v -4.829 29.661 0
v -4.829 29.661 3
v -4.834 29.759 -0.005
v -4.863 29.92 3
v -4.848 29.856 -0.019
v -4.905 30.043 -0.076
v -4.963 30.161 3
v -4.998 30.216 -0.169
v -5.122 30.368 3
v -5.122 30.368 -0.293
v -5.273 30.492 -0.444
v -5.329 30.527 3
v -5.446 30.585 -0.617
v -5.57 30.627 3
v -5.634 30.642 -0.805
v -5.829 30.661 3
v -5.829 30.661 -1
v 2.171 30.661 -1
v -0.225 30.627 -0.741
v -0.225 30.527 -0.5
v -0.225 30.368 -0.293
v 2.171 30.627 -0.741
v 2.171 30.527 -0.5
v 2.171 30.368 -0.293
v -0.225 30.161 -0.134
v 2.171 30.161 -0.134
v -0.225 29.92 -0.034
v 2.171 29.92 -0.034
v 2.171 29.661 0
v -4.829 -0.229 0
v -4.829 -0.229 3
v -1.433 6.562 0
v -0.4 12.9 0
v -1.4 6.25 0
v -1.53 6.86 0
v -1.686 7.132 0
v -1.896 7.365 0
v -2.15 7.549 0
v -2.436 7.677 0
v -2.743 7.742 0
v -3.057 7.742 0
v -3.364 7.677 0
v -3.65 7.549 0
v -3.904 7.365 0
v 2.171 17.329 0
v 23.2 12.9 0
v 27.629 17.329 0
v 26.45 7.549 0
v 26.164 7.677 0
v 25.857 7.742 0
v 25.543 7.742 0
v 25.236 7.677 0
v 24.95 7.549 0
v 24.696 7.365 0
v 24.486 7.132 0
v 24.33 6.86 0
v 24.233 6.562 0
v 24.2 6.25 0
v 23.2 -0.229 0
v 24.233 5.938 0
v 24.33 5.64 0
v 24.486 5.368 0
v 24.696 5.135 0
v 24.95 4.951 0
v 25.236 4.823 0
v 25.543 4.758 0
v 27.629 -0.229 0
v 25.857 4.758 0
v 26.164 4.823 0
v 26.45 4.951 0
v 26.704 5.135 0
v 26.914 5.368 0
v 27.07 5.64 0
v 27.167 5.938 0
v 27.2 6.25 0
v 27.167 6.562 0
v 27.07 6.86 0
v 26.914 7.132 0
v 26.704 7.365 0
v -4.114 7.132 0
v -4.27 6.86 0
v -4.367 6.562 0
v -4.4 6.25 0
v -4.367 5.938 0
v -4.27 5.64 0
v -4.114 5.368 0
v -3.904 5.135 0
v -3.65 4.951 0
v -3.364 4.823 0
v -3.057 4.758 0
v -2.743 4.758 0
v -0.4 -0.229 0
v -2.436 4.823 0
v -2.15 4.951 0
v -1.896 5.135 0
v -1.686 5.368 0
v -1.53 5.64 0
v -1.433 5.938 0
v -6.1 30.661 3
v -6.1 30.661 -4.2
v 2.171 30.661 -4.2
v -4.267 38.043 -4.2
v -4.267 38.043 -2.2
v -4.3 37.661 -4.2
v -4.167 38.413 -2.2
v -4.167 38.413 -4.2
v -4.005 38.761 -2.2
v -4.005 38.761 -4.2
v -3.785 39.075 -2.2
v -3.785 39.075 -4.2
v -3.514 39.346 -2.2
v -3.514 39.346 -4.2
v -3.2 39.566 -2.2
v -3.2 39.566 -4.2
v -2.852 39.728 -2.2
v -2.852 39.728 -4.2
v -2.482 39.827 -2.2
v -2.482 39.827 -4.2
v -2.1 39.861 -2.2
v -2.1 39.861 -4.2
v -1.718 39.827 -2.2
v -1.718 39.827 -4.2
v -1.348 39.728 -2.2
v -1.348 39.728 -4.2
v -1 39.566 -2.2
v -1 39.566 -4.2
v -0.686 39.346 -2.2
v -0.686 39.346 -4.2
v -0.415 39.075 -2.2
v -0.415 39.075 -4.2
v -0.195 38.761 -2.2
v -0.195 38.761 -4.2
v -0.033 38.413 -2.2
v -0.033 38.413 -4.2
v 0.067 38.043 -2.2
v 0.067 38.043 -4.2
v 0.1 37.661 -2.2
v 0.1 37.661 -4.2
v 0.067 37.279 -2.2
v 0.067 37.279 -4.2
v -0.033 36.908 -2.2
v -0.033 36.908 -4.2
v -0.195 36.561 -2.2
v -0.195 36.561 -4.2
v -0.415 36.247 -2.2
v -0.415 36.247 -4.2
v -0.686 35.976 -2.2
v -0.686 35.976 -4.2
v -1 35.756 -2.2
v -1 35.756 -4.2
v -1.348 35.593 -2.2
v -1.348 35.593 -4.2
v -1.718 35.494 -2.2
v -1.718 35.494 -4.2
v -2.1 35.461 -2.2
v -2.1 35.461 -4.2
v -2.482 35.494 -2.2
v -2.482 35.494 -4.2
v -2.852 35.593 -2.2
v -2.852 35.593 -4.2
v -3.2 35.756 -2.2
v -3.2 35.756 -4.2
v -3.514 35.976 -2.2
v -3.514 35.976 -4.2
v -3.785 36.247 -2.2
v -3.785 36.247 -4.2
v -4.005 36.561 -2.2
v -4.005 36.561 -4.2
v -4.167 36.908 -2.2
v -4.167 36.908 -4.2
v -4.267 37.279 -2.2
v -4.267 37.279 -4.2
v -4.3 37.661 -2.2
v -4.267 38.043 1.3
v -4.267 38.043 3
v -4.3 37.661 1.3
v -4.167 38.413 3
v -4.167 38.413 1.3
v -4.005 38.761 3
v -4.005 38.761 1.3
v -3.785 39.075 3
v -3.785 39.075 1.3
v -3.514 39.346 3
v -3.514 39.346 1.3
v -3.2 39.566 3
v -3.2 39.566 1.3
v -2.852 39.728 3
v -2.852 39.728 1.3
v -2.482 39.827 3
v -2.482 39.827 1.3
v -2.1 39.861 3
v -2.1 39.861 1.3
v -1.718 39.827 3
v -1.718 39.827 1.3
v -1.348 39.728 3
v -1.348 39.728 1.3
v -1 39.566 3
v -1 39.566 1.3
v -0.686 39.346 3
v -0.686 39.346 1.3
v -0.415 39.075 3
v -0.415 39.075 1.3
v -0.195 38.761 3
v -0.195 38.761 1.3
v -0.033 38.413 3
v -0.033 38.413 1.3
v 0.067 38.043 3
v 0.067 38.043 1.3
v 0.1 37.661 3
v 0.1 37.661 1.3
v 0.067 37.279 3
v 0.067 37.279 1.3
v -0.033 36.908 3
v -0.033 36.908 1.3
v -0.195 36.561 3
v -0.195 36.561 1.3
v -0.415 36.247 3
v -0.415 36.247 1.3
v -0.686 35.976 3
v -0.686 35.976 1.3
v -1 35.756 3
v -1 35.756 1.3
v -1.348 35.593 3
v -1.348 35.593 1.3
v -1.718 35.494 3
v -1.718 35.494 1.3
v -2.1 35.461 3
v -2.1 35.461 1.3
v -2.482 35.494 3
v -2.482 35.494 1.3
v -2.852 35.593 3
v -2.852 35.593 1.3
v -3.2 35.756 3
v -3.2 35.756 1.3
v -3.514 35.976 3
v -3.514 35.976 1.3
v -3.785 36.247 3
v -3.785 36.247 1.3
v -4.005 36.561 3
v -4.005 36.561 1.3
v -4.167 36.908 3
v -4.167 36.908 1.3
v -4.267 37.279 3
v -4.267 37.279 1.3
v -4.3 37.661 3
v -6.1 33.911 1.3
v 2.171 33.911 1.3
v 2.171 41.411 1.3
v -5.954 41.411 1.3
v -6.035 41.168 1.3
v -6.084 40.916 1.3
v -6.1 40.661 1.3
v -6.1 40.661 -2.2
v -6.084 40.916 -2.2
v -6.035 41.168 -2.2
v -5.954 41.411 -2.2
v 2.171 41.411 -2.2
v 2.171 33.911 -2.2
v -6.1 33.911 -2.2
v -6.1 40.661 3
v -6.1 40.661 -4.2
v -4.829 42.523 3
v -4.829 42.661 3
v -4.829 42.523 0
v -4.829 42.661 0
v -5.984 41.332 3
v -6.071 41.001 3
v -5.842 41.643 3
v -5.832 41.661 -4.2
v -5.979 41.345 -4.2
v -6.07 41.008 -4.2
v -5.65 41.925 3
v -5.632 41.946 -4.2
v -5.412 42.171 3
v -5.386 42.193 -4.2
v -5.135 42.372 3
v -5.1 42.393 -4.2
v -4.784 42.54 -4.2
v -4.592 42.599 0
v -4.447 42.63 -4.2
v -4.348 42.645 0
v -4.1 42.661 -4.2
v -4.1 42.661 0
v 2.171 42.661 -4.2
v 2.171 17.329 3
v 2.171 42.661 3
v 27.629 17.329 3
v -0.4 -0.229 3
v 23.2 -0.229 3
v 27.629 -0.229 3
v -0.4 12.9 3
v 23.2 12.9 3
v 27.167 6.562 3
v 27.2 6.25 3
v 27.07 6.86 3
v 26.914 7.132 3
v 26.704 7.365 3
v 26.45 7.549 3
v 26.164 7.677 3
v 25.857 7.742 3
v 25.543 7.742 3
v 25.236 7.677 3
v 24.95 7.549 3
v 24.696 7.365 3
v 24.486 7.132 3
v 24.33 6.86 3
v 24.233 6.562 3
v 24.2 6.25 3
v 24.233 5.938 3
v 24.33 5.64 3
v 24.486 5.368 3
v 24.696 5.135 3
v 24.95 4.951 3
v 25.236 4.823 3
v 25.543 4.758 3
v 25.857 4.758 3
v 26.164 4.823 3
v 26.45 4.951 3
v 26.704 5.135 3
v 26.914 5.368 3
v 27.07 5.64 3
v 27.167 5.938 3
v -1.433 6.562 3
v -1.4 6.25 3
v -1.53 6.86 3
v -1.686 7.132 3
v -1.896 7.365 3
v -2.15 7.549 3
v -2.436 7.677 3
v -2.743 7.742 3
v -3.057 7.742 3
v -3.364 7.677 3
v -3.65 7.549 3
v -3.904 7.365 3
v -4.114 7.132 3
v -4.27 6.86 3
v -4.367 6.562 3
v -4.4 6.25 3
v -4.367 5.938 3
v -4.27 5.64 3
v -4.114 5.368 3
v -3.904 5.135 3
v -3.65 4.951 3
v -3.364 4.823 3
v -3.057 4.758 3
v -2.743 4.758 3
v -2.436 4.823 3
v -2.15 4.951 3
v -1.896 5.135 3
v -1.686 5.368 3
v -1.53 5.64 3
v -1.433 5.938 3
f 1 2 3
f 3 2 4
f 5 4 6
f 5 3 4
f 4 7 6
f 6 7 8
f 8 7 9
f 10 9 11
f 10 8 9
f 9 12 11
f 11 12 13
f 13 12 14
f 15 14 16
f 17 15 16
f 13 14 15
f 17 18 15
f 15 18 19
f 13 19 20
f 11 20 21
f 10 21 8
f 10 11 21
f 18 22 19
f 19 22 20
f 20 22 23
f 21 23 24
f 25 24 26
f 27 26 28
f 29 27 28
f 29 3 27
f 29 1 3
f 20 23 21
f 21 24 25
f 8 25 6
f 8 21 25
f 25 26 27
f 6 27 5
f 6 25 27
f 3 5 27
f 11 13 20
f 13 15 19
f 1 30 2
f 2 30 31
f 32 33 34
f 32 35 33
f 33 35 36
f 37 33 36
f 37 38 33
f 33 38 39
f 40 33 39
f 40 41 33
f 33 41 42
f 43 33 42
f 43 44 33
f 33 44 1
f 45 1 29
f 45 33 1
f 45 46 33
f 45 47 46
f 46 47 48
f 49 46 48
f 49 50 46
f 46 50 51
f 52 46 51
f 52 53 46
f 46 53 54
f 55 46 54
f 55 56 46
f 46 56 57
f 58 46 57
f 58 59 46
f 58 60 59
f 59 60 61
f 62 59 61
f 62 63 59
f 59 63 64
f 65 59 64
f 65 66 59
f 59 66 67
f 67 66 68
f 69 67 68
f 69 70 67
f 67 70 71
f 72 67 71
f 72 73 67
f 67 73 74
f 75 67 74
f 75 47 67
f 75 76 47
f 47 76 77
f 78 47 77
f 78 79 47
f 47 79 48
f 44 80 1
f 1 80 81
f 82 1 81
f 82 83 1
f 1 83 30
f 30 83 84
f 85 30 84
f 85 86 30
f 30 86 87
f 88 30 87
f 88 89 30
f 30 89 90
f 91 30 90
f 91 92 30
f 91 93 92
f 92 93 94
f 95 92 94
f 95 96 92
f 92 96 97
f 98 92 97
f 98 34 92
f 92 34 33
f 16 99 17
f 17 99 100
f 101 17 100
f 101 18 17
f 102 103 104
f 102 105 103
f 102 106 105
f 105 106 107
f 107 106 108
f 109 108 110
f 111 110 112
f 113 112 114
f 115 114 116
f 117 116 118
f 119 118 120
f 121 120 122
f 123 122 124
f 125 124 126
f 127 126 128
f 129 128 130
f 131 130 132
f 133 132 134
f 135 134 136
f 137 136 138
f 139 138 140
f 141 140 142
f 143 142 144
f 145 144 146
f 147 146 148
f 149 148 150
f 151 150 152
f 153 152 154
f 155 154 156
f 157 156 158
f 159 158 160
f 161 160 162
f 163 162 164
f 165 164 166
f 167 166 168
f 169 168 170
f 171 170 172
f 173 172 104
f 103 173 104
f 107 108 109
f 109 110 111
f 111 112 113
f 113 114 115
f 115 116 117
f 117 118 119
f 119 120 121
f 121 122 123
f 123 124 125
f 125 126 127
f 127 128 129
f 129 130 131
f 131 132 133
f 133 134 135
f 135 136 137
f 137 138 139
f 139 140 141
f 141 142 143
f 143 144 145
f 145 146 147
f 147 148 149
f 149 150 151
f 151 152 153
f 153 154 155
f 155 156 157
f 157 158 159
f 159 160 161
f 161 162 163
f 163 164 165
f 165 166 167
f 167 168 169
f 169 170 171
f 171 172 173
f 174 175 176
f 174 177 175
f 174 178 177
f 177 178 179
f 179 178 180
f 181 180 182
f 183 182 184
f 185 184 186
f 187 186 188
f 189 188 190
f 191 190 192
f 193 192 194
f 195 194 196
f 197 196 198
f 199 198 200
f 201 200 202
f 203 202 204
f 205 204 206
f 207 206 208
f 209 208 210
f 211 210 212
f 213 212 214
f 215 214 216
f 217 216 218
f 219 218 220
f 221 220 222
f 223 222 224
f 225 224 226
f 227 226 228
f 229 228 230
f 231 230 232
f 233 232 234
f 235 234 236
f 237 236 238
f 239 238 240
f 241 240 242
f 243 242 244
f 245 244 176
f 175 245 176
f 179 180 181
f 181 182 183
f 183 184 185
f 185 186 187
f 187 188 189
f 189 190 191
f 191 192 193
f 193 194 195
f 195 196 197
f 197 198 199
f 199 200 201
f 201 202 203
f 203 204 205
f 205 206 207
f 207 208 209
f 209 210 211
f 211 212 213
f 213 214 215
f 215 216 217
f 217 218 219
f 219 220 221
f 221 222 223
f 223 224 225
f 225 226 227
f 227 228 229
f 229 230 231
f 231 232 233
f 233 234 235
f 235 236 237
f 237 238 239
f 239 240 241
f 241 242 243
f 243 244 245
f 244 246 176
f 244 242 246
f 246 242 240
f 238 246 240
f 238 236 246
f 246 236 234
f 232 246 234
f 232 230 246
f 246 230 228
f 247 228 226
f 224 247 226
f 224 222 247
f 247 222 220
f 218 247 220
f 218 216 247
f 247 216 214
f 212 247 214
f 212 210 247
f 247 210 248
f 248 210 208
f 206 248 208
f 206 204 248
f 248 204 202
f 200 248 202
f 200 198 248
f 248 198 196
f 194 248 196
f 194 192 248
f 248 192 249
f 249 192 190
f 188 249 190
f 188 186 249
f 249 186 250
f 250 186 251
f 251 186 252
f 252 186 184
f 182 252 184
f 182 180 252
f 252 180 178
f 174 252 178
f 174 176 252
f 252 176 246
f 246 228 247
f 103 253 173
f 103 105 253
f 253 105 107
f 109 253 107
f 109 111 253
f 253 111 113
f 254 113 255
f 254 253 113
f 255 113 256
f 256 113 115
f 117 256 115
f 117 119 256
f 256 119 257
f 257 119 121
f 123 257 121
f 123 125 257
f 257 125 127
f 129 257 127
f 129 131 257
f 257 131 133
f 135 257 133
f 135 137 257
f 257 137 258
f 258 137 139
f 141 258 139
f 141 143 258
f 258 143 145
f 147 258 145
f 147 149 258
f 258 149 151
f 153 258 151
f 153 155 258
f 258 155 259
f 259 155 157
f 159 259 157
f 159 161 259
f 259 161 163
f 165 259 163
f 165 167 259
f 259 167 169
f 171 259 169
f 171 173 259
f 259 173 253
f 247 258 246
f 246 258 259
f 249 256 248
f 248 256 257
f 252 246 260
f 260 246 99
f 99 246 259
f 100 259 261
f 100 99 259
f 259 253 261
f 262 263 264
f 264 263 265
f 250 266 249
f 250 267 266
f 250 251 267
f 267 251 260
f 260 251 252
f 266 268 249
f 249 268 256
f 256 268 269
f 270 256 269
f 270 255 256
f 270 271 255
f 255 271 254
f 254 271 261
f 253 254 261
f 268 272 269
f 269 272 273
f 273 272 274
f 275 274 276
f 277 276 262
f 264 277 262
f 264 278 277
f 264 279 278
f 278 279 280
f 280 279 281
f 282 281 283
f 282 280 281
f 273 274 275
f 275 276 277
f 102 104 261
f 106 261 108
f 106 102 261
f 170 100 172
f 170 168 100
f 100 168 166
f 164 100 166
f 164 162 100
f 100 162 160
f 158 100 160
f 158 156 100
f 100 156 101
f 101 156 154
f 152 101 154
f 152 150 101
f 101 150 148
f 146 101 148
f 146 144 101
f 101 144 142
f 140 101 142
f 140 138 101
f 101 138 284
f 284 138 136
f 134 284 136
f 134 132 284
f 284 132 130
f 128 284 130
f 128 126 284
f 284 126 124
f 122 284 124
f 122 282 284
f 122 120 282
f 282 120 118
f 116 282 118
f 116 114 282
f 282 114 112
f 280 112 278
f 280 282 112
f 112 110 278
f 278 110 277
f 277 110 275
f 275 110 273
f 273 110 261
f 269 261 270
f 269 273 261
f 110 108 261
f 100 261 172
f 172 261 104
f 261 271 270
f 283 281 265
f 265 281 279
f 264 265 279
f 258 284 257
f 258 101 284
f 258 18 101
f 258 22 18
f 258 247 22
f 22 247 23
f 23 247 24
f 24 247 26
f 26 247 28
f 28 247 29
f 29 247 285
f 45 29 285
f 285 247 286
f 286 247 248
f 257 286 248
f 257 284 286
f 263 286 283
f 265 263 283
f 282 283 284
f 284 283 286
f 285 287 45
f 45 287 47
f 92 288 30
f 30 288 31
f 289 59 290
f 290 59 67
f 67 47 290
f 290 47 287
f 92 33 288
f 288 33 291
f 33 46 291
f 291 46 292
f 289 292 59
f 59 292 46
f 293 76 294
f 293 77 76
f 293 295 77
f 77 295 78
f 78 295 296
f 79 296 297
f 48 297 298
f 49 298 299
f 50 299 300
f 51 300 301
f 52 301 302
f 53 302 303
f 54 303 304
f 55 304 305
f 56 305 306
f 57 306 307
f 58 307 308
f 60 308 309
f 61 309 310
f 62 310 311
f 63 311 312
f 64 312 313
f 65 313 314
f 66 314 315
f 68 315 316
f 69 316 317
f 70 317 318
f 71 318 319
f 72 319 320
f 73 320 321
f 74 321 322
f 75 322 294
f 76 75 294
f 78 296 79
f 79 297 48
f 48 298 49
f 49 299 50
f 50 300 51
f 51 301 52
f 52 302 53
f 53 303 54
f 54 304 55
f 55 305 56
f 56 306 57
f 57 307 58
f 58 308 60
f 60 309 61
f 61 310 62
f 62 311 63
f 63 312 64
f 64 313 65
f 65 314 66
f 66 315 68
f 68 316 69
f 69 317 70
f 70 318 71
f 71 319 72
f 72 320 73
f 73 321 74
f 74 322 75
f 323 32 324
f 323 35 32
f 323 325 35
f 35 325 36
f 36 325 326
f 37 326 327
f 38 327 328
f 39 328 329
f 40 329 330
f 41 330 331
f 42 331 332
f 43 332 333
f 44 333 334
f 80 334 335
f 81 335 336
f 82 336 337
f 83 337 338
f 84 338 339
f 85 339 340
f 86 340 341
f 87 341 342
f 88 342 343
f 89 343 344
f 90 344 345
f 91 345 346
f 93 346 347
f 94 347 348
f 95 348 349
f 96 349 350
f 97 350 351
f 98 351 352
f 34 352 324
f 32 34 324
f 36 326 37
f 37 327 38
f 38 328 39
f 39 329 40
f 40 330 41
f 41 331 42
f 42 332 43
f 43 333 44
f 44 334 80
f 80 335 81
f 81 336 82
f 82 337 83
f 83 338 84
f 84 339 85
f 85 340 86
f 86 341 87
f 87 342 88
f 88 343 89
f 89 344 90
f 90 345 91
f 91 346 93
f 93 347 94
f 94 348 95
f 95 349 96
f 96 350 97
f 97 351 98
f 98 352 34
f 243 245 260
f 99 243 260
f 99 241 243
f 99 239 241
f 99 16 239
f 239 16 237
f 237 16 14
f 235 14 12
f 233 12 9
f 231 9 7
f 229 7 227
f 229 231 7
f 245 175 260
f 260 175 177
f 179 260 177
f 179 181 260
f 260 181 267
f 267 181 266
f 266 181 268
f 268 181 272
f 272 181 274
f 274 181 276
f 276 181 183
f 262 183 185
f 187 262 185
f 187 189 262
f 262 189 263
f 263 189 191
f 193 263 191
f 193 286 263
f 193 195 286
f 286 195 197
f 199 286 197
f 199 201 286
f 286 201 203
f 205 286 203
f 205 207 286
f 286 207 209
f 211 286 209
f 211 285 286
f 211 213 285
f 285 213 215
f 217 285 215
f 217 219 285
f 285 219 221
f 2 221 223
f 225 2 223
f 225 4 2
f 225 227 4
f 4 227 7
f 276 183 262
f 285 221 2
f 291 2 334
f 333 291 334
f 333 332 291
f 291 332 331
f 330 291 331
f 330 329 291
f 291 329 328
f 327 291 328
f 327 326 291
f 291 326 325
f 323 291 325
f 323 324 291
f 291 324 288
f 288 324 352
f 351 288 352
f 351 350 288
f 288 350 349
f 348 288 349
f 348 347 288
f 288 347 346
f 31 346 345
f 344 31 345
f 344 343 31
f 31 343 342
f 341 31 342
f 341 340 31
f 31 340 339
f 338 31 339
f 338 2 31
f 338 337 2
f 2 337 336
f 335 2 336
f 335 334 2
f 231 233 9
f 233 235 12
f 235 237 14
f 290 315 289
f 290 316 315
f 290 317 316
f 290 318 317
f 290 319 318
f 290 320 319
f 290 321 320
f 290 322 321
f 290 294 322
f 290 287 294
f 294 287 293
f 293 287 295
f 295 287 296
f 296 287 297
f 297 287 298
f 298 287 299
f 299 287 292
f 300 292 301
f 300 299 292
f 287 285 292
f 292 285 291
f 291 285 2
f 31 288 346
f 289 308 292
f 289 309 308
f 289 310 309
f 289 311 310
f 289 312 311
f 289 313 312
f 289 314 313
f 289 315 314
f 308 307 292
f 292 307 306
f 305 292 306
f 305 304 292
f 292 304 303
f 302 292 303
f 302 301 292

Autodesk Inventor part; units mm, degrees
ref_plane "YZ Plane" through (0, 0, 0) normal (1, 0, 0) x (0, 1, 0)
ref_plane "XZ Plane" through (0, 0, 0) normal (0, 1, 0) x (-1, 0, 0)
sketch "Sketch1" plane through (0, 0, 0) normal (0, 0, 1) x (1, 0, 0)
  line L0 (22.8, 0) -> (0, 0) projected
  line L1 (22.8, 12.5) -> (22.8, 0) projected
  line L2 (0, 12.5) -> (22.8, 12.5) projected
  line L3 (0, 0) -> (0, 12.5) projected
  arc A0 (-3.7, 5.65) -> (-3.7, 6.85) centre (-2.9, 6.25) ccw projected
  arc A1 (26.5, 6.85) -> (26.5, 5.65) centre (25.7, 6.25) ccw projected
  line L4 (23.2, 12.9) -> (23.2, -0.4)
  line L5 (23.2, -0.4) -> (-0.4, -0.4)
  line L6 (-0.4, -0.4) -> (-0.4, 12.9)
  line L7 (-0.4, 12.9) -> (23.2, 12.9)
  line L8 (27.6, 6.85) -> (27.6, 12.5) construction
  line L9 (27.629, -4.829) -> (27.629, 17.329)
  line L10 (27.629, 17.329) -> (-4.829, 17.329)
  line L11 (-4.829, 17.329) -> (-4.829, -4.829)
  line L12 (-4.829, -4.829) -> (27.629, -4.829)
  arc A2 (-4.1, 5.35) -> (-4.1, 7.15) centre (-2.9, 6.25) ccw
  arc A3 (26.9, 7.15) -> (26.9, 5.35) centre (25.7, 6.25) ccw
  circle A4 centre (-2.9, 6.25) radius 1.5
  circle A5 centre (25.7, 6.25) radius 1.5
  dimension "d0" = 0.4
  dimension "d1" = 0.5
  dimension "d2" = 0.5
extrude "Extrusion1" add sketch "Sketch1" along normal blind 3 contours L12 L11 L10 L9
sketch "Sketch2" plane through (-4.829, -4.829, 0) normal (0, -1, 0) x (1, 0, 0)
  line L0 (0, 0) -> (32.458, 0) projected
  line L1 (32.458, 0) -> (32.458, 3) projected
  line L2 (0, 3) -> (32.458, 3) projected
  line L3 (0, 0) -> (0, 3) projected
  point P0 (4.829, 0)
extrude "Extrusion2" cut sketch "Sketch2" against normal blind 4.6
sketch "Sketch3" plane through (-4.829, 17.329, 0) normal (0, 1, 0) x (1, 0, 0)
  line L0 (32.458, -3) -> (0, -3) projected
  line L1 (0, 0) -> (7, 0)
  line L2 (7, 0) -> (7, -3)
  line L3 (7, -3) -> (0, -3)
  line L4 (0, -3) -> (0, 0)
  point P0 (4.829, 0)
  dimension "d7" = 7
ref_plane "Work Plane1" through (-4.1, 42.6608, -9.2) normal (0, 1, 0) x (0, 0, 1)
extrude "Extrusion3" add sketch "Sketch3" along normal up to surface (25.3318 mm away)
sketch "Sketch4" plane through (0, 0, 0) normal (0, 0, -1) x (-1, 0, 0)
  circle A0 centre (2.1, 37.6608) radius 2 projected
  line L0 (-1.9, 39.6608) -> (-1.9, 32.6608) projected
  line L1 (-6.3422, 39.6608) -> (-1.9, 39.6608) projected
  line L2 (-6.3422, 39.6608) -> (-6.3422, 42.6608) projected
  line L3 (-6.3422, 42.6608) -> (4.1, 42.6608) projected
  arc A1 (6.1, 40.6608) -> (4.1, 42.6608) centre (4.1, 40.6608) ccw projected
  line L4 (6.1, 32.6608) -> (6.1, 40.6608) projected
  line L5 (-1.9, 32.6608) -> (6.1, 32.6608) projected
  point P0 (0, 0)
extrude "Extrusion4" add sketch "Sketch4" along normal up to surface (4.2 mm away)
sketch "Sketch5" plane through (0, 0, 0) normal (0, 0, 1) x (1, 0, 0)
  line L0 (2.171, 39.6608) -> (2.171, 42.6608) projected
  line L1 (6.3422, 39.6608) -> (2.171, 39.6608) projected
  line L2 (6.3422, 42.6608) -> (6.3422, 39.6608) projected
  line L3 (2.171, 42.6608) -> (6.3422, 42.6608) projected
  point P0 (0, 0)
extrude "Extrusion5" cut sketch "Sketch5" against normal up to surface (4.2 mm away)
sketch "Sketch6" plane through (0, 0, 0) normal (0, 0, 1) x (1, 0, 0)
  line L0 (-4.829, 32.6608) -> (-4.829, 42.5232) projected
  arc A0 (-4.829, 42.5232) -> (-6.1, 40.6608) centre (-4.1, 40.6608) ccw projected
  line L1 (-6.1, 32.6608) -> (-6.1, 40.6608) projected
  line L2 (-4.829, 32.6608) -> (-6.1, 32.6608) projected
  point P0 (0, 0)
extrude "Extrusion6" add sketch "Sketch6" along normal up to surface (3 mm away)
sketch "Sketch7" plane through (1.9, 32.6608, 0) normal (1, 0, 0) x (0, 0, -1)
  line L0 (4.2, 0) -> (4.2, 7) projected
  line L1 (0, 7) -> (4.2, 7) projected
  line L2 (0, 0) -> (0, 7) projected
  line L3 (0, 0) -> (4.2, 0) projected
  point P0 (0, -32.6608)
extrude "Extrusion7" add sketch "Sketch7" along normal up to surface (0.271 mm away)
sketch "Sketch8" plane through (-6.1, 32.6608, -4.2) normal (-1, 0, 0) x (0, 0, 1)
  line L0 (2, 8.75) -> (5.5, 8.75)
  line L1 (5.5, 8.75) -> (5.5, 1.25)
  line L2 (5.5, 1.25) -> (2, 1.25)
  line L3 (2, 1.25) -> (2, 8.75)
  line L4 (0, 7) -> (0, 3) construction
  line L5 (0, 7) -> (0, 3) construction
  line L6 (4.2, 7) -> (4.2, 3) construction
  line L7 (4.2, 7) -> (0, 7) construction
  line L8 (4.2, 3) -> (0, 3) construction
  point P0 (4.2, -32.6608)
  dimension "d19" = 3.5
  dimension "d20" = 7.5
  dimension "d21" = 1.75
  dimension "d22" = 2
extrude "Extrusion8" cut sketch "Sketch8" against normal through all
sketch "Sketch9" plane through (-6.1, 33.9108, 1.3) normal (0, 0, -1) x (-1, 0, 0)
  circle A0 centre (-4, 3.75) radius 2 projected
  circle A1 centre (-4, 3.75) radius 2.2
  point P0 (-6.1, -33.9108)
  dimension "d25" = 0.2
extrude "Extrusion9" cut sketch "Sketch9" along normal through all both and the other way through all contours A0 | A1
sketch "Sketch10" plane through (-4.829, 32.6608, 0) normal (0, -1, 0) x (1, 0, 0)
  line L0 (-1.271, -4.2) -> (7, -4.2) projected
  line L1 (7, -4.2) -> (7, 0) projected
  line L2 (0, 0) -> (7, 0) projected
  line L3 (0, 3) -> (0, 0) projected
  line L4 (0, 3) -> (-1.271, 3) projected
  line L5 (-1.271, 3) -> (-1.271, -4.2) projected
  point P0 (4.829, 0)
extrude "Extrusion10" add sketch "Sketch10" along normal blind 2
fillet "Fillet2" radius 1 2 edges at (-1.329, 30.6608, 0) (-4.829, 30.6608, 1.5)
properties part number "ServoBracket"
